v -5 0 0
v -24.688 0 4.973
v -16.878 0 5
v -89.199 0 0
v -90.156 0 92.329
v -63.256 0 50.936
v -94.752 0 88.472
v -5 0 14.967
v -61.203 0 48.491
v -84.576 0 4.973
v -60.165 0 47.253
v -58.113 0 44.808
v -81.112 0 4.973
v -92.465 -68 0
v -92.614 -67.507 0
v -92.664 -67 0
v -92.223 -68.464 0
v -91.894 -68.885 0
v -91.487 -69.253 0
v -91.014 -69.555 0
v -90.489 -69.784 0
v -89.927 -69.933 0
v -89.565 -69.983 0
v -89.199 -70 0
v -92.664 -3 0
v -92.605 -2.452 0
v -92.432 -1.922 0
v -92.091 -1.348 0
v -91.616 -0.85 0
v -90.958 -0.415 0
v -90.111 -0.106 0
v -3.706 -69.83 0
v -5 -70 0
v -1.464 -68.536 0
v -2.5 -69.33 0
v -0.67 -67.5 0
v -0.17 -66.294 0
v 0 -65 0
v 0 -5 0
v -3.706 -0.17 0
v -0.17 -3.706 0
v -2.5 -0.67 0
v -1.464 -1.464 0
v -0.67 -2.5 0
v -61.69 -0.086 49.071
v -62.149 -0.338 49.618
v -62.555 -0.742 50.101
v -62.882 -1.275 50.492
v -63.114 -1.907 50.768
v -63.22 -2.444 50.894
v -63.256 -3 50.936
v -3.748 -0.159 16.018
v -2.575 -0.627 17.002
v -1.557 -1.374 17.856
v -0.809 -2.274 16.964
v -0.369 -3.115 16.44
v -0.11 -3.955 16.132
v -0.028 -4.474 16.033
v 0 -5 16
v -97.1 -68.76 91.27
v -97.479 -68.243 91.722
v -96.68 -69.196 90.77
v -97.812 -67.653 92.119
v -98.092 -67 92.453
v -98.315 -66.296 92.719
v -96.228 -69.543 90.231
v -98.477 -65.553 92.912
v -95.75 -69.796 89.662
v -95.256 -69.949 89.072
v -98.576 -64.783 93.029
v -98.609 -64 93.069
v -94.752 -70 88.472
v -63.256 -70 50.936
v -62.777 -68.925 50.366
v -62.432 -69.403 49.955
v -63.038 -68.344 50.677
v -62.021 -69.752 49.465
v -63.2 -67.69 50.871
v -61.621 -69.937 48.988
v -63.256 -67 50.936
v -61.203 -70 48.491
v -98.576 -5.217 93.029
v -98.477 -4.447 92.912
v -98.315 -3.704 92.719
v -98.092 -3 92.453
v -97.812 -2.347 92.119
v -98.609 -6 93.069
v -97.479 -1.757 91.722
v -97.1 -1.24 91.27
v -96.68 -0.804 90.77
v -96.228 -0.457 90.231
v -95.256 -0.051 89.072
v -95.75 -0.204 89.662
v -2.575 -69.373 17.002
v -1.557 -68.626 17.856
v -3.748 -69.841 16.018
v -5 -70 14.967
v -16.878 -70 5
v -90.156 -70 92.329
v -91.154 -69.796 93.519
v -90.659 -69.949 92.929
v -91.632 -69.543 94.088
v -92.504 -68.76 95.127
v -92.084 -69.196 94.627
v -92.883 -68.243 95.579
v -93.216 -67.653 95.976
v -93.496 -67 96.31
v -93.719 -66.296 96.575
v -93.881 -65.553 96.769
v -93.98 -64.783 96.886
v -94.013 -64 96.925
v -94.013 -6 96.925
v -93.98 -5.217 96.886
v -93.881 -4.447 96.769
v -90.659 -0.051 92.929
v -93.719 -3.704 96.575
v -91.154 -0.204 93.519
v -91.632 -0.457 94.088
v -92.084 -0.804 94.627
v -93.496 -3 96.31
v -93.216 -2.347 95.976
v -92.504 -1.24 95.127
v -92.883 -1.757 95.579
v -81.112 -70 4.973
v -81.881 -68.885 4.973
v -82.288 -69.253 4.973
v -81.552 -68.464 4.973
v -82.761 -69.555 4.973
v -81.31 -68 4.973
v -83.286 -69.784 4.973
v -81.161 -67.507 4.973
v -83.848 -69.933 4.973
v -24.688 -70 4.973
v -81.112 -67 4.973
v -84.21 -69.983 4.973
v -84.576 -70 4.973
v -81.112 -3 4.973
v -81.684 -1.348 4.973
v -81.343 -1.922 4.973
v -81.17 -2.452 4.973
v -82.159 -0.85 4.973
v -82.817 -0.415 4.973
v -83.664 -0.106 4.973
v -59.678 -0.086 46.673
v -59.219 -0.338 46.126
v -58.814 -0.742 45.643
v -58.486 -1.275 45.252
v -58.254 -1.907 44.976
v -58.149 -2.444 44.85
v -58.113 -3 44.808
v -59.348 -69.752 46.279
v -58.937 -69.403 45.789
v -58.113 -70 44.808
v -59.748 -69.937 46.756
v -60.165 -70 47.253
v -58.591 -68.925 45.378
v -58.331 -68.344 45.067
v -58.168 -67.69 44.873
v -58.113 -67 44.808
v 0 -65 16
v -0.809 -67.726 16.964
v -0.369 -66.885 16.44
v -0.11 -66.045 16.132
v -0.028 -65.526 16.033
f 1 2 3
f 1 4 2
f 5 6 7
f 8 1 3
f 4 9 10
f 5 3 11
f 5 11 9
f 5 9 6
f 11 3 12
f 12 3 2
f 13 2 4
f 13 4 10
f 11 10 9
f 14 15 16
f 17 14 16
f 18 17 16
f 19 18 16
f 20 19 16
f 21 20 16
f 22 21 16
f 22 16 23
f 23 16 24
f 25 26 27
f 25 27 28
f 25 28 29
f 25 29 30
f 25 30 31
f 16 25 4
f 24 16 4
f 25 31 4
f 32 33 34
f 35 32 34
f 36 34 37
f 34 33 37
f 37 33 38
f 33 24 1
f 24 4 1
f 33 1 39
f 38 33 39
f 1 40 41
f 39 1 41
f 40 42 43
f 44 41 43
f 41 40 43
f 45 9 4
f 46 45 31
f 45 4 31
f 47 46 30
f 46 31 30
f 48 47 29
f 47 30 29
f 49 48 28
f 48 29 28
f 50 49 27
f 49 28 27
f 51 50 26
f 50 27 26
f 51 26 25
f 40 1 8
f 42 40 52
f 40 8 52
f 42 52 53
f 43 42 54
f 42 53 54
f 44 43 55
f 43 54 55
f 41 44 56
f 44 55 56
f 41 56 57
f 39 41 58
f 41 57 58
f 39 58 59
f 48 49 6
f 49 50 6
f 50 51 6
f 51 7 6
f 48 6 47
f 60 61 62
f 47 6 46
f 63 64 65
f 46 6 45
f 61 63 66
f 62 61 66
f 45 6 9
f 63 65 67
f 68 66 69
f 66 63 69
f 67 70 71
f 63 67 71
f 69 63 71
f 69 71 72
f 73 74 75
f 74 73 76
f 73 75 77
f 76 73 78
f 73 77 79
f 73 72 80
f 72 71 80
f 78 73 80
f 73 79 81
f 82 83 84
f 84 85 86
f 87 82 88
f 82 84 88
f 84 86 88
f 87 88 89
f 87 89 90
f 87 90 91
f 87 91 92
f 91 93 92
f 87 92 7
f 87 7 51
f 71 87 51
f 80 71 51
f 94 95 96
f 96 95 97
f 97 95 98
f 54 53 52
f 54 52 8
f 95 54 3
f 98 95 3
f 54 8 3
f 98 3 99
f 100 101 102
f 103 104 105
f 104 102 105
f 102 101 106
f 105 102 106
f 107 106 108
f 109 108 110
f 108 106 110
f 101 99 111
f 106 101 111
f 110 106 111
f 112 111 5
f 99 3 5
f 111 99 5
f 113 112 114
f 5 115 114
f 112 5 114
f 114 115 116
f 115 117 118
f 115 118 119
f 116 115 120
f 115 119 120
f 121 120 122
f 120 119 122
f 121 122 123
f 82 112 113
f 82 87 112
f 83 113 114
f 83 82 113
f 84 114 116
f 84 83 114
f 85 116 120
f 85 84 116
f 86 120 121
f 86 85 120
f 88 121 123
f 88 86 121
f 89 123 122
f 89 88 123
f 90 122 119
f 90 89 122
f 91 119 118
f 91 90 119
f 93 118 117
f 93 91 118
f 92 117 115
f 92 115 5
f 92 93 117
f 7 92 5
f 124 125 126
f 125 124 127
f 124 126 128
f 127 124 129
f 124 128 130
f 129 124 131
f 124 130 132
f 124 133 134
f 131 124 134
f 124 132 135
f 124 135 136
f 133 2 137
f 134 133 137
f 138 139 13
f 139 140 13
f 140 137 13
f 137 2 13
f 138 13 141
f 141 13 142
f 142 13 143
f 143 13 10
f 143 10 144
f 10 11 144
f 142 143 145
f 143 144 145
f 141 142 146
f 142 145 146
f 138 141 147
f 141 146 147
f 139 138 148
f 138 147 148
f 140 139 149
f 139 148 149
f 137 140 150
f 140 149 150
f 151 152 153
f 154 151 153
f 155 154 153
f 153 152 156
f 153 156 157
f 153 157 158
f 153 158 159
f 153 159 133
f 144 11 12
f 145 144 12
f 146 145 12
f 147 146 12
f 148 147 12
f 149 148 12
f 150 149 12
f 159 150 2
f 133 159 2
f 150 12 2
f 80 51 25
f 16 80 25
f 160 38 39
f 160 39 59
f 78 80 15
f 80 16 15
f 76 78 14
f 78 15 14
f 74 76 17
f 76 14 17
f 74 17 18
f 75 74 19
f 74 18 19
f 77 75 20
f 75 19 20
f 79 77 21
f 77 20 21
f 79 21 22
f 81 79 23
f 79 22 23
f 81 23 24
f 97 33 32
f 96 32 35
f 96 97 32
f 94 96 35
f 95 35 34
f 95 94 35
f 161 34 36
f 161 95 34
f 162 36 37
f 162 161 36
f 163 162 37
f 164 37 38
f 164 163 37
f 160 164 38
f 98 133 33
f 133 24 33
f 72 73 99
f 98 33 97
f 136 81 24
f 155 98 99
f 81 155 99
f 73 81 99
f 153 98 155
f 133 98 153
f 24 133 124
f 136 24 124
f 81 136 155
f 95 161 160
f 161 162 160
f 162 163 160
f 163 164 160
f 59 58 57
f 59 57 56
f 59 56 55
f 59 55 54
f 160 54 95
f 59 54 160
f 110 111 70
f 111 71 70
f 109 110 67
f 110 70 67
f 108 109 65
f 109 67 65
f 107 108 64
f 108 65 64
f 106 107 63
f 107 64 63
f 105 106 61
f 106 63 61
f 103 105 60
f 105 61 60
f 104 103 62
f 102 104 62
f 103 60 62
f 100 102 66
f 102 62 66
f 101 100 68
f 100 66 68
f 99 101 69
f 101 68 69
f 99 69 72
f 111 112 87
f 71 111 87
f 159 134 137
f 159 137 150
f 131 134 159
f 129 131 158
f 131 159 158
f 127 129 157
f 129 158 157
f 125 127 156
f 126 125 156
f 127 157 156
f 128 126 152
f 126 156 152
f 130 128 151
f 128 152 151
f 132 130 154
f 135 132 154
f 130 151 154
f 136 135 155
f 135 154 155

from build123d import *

# Parameters (mm, degrees)
PAD_DEPTH   = 70
FILLET_R    = 6
FILLET001_R = 5
FILLET002_R = 3


with BuildPart() as part:
    # Sketch → Pad (new body)
    with BuildSketch(Plane.XZ):
        Polygon((0, 0), (0, 16), (-1.557161, 17.855752), (-16.87805, 5), (-94.012563, 96.925333), (-98.60883, 93.068608), (-63.255511, 50.936163), (-92.663519, 0), align=None)
        Polygon((-58.11321, 44.807808), (-24.688255, 4.973497), (-81.11156, 4.973497), align=None, mode=Mode.SUBTRACT)
    extrude(amount=PAD_DEPTH)

    # Fillet
    fillet_edges = [part.edges().sort_by_distance(p)[0] for p in [
        (-96.310696, -70, 94.99697),
        (-96.310696, 0, 94.99697),
    ]]
    fillet(fillet_edges, radius=FILLET_R)

    # Fillet001
    fillet001_edges = [part.edges().sort_by_distance(p)[0] for p in [
        (0, -70, 8),
        (0, 0, 8),
    ]]
    fillet(fillet001_edges, radius=FILLET001_R)

    # Fillet002
    fillet002_edges = [part.edges().sort_by_distance(p)[0] for p in [
        (-69.612385, -70, 24.890652),
        (-77.959515, -70, 25.468082),
        (-77.959515, 0, 25.468082),
        (-69.612385, 0, 24.890652),
    ]]
    fillet(fillet002_edges, radius=FILLET002_R)


solid = part.part
